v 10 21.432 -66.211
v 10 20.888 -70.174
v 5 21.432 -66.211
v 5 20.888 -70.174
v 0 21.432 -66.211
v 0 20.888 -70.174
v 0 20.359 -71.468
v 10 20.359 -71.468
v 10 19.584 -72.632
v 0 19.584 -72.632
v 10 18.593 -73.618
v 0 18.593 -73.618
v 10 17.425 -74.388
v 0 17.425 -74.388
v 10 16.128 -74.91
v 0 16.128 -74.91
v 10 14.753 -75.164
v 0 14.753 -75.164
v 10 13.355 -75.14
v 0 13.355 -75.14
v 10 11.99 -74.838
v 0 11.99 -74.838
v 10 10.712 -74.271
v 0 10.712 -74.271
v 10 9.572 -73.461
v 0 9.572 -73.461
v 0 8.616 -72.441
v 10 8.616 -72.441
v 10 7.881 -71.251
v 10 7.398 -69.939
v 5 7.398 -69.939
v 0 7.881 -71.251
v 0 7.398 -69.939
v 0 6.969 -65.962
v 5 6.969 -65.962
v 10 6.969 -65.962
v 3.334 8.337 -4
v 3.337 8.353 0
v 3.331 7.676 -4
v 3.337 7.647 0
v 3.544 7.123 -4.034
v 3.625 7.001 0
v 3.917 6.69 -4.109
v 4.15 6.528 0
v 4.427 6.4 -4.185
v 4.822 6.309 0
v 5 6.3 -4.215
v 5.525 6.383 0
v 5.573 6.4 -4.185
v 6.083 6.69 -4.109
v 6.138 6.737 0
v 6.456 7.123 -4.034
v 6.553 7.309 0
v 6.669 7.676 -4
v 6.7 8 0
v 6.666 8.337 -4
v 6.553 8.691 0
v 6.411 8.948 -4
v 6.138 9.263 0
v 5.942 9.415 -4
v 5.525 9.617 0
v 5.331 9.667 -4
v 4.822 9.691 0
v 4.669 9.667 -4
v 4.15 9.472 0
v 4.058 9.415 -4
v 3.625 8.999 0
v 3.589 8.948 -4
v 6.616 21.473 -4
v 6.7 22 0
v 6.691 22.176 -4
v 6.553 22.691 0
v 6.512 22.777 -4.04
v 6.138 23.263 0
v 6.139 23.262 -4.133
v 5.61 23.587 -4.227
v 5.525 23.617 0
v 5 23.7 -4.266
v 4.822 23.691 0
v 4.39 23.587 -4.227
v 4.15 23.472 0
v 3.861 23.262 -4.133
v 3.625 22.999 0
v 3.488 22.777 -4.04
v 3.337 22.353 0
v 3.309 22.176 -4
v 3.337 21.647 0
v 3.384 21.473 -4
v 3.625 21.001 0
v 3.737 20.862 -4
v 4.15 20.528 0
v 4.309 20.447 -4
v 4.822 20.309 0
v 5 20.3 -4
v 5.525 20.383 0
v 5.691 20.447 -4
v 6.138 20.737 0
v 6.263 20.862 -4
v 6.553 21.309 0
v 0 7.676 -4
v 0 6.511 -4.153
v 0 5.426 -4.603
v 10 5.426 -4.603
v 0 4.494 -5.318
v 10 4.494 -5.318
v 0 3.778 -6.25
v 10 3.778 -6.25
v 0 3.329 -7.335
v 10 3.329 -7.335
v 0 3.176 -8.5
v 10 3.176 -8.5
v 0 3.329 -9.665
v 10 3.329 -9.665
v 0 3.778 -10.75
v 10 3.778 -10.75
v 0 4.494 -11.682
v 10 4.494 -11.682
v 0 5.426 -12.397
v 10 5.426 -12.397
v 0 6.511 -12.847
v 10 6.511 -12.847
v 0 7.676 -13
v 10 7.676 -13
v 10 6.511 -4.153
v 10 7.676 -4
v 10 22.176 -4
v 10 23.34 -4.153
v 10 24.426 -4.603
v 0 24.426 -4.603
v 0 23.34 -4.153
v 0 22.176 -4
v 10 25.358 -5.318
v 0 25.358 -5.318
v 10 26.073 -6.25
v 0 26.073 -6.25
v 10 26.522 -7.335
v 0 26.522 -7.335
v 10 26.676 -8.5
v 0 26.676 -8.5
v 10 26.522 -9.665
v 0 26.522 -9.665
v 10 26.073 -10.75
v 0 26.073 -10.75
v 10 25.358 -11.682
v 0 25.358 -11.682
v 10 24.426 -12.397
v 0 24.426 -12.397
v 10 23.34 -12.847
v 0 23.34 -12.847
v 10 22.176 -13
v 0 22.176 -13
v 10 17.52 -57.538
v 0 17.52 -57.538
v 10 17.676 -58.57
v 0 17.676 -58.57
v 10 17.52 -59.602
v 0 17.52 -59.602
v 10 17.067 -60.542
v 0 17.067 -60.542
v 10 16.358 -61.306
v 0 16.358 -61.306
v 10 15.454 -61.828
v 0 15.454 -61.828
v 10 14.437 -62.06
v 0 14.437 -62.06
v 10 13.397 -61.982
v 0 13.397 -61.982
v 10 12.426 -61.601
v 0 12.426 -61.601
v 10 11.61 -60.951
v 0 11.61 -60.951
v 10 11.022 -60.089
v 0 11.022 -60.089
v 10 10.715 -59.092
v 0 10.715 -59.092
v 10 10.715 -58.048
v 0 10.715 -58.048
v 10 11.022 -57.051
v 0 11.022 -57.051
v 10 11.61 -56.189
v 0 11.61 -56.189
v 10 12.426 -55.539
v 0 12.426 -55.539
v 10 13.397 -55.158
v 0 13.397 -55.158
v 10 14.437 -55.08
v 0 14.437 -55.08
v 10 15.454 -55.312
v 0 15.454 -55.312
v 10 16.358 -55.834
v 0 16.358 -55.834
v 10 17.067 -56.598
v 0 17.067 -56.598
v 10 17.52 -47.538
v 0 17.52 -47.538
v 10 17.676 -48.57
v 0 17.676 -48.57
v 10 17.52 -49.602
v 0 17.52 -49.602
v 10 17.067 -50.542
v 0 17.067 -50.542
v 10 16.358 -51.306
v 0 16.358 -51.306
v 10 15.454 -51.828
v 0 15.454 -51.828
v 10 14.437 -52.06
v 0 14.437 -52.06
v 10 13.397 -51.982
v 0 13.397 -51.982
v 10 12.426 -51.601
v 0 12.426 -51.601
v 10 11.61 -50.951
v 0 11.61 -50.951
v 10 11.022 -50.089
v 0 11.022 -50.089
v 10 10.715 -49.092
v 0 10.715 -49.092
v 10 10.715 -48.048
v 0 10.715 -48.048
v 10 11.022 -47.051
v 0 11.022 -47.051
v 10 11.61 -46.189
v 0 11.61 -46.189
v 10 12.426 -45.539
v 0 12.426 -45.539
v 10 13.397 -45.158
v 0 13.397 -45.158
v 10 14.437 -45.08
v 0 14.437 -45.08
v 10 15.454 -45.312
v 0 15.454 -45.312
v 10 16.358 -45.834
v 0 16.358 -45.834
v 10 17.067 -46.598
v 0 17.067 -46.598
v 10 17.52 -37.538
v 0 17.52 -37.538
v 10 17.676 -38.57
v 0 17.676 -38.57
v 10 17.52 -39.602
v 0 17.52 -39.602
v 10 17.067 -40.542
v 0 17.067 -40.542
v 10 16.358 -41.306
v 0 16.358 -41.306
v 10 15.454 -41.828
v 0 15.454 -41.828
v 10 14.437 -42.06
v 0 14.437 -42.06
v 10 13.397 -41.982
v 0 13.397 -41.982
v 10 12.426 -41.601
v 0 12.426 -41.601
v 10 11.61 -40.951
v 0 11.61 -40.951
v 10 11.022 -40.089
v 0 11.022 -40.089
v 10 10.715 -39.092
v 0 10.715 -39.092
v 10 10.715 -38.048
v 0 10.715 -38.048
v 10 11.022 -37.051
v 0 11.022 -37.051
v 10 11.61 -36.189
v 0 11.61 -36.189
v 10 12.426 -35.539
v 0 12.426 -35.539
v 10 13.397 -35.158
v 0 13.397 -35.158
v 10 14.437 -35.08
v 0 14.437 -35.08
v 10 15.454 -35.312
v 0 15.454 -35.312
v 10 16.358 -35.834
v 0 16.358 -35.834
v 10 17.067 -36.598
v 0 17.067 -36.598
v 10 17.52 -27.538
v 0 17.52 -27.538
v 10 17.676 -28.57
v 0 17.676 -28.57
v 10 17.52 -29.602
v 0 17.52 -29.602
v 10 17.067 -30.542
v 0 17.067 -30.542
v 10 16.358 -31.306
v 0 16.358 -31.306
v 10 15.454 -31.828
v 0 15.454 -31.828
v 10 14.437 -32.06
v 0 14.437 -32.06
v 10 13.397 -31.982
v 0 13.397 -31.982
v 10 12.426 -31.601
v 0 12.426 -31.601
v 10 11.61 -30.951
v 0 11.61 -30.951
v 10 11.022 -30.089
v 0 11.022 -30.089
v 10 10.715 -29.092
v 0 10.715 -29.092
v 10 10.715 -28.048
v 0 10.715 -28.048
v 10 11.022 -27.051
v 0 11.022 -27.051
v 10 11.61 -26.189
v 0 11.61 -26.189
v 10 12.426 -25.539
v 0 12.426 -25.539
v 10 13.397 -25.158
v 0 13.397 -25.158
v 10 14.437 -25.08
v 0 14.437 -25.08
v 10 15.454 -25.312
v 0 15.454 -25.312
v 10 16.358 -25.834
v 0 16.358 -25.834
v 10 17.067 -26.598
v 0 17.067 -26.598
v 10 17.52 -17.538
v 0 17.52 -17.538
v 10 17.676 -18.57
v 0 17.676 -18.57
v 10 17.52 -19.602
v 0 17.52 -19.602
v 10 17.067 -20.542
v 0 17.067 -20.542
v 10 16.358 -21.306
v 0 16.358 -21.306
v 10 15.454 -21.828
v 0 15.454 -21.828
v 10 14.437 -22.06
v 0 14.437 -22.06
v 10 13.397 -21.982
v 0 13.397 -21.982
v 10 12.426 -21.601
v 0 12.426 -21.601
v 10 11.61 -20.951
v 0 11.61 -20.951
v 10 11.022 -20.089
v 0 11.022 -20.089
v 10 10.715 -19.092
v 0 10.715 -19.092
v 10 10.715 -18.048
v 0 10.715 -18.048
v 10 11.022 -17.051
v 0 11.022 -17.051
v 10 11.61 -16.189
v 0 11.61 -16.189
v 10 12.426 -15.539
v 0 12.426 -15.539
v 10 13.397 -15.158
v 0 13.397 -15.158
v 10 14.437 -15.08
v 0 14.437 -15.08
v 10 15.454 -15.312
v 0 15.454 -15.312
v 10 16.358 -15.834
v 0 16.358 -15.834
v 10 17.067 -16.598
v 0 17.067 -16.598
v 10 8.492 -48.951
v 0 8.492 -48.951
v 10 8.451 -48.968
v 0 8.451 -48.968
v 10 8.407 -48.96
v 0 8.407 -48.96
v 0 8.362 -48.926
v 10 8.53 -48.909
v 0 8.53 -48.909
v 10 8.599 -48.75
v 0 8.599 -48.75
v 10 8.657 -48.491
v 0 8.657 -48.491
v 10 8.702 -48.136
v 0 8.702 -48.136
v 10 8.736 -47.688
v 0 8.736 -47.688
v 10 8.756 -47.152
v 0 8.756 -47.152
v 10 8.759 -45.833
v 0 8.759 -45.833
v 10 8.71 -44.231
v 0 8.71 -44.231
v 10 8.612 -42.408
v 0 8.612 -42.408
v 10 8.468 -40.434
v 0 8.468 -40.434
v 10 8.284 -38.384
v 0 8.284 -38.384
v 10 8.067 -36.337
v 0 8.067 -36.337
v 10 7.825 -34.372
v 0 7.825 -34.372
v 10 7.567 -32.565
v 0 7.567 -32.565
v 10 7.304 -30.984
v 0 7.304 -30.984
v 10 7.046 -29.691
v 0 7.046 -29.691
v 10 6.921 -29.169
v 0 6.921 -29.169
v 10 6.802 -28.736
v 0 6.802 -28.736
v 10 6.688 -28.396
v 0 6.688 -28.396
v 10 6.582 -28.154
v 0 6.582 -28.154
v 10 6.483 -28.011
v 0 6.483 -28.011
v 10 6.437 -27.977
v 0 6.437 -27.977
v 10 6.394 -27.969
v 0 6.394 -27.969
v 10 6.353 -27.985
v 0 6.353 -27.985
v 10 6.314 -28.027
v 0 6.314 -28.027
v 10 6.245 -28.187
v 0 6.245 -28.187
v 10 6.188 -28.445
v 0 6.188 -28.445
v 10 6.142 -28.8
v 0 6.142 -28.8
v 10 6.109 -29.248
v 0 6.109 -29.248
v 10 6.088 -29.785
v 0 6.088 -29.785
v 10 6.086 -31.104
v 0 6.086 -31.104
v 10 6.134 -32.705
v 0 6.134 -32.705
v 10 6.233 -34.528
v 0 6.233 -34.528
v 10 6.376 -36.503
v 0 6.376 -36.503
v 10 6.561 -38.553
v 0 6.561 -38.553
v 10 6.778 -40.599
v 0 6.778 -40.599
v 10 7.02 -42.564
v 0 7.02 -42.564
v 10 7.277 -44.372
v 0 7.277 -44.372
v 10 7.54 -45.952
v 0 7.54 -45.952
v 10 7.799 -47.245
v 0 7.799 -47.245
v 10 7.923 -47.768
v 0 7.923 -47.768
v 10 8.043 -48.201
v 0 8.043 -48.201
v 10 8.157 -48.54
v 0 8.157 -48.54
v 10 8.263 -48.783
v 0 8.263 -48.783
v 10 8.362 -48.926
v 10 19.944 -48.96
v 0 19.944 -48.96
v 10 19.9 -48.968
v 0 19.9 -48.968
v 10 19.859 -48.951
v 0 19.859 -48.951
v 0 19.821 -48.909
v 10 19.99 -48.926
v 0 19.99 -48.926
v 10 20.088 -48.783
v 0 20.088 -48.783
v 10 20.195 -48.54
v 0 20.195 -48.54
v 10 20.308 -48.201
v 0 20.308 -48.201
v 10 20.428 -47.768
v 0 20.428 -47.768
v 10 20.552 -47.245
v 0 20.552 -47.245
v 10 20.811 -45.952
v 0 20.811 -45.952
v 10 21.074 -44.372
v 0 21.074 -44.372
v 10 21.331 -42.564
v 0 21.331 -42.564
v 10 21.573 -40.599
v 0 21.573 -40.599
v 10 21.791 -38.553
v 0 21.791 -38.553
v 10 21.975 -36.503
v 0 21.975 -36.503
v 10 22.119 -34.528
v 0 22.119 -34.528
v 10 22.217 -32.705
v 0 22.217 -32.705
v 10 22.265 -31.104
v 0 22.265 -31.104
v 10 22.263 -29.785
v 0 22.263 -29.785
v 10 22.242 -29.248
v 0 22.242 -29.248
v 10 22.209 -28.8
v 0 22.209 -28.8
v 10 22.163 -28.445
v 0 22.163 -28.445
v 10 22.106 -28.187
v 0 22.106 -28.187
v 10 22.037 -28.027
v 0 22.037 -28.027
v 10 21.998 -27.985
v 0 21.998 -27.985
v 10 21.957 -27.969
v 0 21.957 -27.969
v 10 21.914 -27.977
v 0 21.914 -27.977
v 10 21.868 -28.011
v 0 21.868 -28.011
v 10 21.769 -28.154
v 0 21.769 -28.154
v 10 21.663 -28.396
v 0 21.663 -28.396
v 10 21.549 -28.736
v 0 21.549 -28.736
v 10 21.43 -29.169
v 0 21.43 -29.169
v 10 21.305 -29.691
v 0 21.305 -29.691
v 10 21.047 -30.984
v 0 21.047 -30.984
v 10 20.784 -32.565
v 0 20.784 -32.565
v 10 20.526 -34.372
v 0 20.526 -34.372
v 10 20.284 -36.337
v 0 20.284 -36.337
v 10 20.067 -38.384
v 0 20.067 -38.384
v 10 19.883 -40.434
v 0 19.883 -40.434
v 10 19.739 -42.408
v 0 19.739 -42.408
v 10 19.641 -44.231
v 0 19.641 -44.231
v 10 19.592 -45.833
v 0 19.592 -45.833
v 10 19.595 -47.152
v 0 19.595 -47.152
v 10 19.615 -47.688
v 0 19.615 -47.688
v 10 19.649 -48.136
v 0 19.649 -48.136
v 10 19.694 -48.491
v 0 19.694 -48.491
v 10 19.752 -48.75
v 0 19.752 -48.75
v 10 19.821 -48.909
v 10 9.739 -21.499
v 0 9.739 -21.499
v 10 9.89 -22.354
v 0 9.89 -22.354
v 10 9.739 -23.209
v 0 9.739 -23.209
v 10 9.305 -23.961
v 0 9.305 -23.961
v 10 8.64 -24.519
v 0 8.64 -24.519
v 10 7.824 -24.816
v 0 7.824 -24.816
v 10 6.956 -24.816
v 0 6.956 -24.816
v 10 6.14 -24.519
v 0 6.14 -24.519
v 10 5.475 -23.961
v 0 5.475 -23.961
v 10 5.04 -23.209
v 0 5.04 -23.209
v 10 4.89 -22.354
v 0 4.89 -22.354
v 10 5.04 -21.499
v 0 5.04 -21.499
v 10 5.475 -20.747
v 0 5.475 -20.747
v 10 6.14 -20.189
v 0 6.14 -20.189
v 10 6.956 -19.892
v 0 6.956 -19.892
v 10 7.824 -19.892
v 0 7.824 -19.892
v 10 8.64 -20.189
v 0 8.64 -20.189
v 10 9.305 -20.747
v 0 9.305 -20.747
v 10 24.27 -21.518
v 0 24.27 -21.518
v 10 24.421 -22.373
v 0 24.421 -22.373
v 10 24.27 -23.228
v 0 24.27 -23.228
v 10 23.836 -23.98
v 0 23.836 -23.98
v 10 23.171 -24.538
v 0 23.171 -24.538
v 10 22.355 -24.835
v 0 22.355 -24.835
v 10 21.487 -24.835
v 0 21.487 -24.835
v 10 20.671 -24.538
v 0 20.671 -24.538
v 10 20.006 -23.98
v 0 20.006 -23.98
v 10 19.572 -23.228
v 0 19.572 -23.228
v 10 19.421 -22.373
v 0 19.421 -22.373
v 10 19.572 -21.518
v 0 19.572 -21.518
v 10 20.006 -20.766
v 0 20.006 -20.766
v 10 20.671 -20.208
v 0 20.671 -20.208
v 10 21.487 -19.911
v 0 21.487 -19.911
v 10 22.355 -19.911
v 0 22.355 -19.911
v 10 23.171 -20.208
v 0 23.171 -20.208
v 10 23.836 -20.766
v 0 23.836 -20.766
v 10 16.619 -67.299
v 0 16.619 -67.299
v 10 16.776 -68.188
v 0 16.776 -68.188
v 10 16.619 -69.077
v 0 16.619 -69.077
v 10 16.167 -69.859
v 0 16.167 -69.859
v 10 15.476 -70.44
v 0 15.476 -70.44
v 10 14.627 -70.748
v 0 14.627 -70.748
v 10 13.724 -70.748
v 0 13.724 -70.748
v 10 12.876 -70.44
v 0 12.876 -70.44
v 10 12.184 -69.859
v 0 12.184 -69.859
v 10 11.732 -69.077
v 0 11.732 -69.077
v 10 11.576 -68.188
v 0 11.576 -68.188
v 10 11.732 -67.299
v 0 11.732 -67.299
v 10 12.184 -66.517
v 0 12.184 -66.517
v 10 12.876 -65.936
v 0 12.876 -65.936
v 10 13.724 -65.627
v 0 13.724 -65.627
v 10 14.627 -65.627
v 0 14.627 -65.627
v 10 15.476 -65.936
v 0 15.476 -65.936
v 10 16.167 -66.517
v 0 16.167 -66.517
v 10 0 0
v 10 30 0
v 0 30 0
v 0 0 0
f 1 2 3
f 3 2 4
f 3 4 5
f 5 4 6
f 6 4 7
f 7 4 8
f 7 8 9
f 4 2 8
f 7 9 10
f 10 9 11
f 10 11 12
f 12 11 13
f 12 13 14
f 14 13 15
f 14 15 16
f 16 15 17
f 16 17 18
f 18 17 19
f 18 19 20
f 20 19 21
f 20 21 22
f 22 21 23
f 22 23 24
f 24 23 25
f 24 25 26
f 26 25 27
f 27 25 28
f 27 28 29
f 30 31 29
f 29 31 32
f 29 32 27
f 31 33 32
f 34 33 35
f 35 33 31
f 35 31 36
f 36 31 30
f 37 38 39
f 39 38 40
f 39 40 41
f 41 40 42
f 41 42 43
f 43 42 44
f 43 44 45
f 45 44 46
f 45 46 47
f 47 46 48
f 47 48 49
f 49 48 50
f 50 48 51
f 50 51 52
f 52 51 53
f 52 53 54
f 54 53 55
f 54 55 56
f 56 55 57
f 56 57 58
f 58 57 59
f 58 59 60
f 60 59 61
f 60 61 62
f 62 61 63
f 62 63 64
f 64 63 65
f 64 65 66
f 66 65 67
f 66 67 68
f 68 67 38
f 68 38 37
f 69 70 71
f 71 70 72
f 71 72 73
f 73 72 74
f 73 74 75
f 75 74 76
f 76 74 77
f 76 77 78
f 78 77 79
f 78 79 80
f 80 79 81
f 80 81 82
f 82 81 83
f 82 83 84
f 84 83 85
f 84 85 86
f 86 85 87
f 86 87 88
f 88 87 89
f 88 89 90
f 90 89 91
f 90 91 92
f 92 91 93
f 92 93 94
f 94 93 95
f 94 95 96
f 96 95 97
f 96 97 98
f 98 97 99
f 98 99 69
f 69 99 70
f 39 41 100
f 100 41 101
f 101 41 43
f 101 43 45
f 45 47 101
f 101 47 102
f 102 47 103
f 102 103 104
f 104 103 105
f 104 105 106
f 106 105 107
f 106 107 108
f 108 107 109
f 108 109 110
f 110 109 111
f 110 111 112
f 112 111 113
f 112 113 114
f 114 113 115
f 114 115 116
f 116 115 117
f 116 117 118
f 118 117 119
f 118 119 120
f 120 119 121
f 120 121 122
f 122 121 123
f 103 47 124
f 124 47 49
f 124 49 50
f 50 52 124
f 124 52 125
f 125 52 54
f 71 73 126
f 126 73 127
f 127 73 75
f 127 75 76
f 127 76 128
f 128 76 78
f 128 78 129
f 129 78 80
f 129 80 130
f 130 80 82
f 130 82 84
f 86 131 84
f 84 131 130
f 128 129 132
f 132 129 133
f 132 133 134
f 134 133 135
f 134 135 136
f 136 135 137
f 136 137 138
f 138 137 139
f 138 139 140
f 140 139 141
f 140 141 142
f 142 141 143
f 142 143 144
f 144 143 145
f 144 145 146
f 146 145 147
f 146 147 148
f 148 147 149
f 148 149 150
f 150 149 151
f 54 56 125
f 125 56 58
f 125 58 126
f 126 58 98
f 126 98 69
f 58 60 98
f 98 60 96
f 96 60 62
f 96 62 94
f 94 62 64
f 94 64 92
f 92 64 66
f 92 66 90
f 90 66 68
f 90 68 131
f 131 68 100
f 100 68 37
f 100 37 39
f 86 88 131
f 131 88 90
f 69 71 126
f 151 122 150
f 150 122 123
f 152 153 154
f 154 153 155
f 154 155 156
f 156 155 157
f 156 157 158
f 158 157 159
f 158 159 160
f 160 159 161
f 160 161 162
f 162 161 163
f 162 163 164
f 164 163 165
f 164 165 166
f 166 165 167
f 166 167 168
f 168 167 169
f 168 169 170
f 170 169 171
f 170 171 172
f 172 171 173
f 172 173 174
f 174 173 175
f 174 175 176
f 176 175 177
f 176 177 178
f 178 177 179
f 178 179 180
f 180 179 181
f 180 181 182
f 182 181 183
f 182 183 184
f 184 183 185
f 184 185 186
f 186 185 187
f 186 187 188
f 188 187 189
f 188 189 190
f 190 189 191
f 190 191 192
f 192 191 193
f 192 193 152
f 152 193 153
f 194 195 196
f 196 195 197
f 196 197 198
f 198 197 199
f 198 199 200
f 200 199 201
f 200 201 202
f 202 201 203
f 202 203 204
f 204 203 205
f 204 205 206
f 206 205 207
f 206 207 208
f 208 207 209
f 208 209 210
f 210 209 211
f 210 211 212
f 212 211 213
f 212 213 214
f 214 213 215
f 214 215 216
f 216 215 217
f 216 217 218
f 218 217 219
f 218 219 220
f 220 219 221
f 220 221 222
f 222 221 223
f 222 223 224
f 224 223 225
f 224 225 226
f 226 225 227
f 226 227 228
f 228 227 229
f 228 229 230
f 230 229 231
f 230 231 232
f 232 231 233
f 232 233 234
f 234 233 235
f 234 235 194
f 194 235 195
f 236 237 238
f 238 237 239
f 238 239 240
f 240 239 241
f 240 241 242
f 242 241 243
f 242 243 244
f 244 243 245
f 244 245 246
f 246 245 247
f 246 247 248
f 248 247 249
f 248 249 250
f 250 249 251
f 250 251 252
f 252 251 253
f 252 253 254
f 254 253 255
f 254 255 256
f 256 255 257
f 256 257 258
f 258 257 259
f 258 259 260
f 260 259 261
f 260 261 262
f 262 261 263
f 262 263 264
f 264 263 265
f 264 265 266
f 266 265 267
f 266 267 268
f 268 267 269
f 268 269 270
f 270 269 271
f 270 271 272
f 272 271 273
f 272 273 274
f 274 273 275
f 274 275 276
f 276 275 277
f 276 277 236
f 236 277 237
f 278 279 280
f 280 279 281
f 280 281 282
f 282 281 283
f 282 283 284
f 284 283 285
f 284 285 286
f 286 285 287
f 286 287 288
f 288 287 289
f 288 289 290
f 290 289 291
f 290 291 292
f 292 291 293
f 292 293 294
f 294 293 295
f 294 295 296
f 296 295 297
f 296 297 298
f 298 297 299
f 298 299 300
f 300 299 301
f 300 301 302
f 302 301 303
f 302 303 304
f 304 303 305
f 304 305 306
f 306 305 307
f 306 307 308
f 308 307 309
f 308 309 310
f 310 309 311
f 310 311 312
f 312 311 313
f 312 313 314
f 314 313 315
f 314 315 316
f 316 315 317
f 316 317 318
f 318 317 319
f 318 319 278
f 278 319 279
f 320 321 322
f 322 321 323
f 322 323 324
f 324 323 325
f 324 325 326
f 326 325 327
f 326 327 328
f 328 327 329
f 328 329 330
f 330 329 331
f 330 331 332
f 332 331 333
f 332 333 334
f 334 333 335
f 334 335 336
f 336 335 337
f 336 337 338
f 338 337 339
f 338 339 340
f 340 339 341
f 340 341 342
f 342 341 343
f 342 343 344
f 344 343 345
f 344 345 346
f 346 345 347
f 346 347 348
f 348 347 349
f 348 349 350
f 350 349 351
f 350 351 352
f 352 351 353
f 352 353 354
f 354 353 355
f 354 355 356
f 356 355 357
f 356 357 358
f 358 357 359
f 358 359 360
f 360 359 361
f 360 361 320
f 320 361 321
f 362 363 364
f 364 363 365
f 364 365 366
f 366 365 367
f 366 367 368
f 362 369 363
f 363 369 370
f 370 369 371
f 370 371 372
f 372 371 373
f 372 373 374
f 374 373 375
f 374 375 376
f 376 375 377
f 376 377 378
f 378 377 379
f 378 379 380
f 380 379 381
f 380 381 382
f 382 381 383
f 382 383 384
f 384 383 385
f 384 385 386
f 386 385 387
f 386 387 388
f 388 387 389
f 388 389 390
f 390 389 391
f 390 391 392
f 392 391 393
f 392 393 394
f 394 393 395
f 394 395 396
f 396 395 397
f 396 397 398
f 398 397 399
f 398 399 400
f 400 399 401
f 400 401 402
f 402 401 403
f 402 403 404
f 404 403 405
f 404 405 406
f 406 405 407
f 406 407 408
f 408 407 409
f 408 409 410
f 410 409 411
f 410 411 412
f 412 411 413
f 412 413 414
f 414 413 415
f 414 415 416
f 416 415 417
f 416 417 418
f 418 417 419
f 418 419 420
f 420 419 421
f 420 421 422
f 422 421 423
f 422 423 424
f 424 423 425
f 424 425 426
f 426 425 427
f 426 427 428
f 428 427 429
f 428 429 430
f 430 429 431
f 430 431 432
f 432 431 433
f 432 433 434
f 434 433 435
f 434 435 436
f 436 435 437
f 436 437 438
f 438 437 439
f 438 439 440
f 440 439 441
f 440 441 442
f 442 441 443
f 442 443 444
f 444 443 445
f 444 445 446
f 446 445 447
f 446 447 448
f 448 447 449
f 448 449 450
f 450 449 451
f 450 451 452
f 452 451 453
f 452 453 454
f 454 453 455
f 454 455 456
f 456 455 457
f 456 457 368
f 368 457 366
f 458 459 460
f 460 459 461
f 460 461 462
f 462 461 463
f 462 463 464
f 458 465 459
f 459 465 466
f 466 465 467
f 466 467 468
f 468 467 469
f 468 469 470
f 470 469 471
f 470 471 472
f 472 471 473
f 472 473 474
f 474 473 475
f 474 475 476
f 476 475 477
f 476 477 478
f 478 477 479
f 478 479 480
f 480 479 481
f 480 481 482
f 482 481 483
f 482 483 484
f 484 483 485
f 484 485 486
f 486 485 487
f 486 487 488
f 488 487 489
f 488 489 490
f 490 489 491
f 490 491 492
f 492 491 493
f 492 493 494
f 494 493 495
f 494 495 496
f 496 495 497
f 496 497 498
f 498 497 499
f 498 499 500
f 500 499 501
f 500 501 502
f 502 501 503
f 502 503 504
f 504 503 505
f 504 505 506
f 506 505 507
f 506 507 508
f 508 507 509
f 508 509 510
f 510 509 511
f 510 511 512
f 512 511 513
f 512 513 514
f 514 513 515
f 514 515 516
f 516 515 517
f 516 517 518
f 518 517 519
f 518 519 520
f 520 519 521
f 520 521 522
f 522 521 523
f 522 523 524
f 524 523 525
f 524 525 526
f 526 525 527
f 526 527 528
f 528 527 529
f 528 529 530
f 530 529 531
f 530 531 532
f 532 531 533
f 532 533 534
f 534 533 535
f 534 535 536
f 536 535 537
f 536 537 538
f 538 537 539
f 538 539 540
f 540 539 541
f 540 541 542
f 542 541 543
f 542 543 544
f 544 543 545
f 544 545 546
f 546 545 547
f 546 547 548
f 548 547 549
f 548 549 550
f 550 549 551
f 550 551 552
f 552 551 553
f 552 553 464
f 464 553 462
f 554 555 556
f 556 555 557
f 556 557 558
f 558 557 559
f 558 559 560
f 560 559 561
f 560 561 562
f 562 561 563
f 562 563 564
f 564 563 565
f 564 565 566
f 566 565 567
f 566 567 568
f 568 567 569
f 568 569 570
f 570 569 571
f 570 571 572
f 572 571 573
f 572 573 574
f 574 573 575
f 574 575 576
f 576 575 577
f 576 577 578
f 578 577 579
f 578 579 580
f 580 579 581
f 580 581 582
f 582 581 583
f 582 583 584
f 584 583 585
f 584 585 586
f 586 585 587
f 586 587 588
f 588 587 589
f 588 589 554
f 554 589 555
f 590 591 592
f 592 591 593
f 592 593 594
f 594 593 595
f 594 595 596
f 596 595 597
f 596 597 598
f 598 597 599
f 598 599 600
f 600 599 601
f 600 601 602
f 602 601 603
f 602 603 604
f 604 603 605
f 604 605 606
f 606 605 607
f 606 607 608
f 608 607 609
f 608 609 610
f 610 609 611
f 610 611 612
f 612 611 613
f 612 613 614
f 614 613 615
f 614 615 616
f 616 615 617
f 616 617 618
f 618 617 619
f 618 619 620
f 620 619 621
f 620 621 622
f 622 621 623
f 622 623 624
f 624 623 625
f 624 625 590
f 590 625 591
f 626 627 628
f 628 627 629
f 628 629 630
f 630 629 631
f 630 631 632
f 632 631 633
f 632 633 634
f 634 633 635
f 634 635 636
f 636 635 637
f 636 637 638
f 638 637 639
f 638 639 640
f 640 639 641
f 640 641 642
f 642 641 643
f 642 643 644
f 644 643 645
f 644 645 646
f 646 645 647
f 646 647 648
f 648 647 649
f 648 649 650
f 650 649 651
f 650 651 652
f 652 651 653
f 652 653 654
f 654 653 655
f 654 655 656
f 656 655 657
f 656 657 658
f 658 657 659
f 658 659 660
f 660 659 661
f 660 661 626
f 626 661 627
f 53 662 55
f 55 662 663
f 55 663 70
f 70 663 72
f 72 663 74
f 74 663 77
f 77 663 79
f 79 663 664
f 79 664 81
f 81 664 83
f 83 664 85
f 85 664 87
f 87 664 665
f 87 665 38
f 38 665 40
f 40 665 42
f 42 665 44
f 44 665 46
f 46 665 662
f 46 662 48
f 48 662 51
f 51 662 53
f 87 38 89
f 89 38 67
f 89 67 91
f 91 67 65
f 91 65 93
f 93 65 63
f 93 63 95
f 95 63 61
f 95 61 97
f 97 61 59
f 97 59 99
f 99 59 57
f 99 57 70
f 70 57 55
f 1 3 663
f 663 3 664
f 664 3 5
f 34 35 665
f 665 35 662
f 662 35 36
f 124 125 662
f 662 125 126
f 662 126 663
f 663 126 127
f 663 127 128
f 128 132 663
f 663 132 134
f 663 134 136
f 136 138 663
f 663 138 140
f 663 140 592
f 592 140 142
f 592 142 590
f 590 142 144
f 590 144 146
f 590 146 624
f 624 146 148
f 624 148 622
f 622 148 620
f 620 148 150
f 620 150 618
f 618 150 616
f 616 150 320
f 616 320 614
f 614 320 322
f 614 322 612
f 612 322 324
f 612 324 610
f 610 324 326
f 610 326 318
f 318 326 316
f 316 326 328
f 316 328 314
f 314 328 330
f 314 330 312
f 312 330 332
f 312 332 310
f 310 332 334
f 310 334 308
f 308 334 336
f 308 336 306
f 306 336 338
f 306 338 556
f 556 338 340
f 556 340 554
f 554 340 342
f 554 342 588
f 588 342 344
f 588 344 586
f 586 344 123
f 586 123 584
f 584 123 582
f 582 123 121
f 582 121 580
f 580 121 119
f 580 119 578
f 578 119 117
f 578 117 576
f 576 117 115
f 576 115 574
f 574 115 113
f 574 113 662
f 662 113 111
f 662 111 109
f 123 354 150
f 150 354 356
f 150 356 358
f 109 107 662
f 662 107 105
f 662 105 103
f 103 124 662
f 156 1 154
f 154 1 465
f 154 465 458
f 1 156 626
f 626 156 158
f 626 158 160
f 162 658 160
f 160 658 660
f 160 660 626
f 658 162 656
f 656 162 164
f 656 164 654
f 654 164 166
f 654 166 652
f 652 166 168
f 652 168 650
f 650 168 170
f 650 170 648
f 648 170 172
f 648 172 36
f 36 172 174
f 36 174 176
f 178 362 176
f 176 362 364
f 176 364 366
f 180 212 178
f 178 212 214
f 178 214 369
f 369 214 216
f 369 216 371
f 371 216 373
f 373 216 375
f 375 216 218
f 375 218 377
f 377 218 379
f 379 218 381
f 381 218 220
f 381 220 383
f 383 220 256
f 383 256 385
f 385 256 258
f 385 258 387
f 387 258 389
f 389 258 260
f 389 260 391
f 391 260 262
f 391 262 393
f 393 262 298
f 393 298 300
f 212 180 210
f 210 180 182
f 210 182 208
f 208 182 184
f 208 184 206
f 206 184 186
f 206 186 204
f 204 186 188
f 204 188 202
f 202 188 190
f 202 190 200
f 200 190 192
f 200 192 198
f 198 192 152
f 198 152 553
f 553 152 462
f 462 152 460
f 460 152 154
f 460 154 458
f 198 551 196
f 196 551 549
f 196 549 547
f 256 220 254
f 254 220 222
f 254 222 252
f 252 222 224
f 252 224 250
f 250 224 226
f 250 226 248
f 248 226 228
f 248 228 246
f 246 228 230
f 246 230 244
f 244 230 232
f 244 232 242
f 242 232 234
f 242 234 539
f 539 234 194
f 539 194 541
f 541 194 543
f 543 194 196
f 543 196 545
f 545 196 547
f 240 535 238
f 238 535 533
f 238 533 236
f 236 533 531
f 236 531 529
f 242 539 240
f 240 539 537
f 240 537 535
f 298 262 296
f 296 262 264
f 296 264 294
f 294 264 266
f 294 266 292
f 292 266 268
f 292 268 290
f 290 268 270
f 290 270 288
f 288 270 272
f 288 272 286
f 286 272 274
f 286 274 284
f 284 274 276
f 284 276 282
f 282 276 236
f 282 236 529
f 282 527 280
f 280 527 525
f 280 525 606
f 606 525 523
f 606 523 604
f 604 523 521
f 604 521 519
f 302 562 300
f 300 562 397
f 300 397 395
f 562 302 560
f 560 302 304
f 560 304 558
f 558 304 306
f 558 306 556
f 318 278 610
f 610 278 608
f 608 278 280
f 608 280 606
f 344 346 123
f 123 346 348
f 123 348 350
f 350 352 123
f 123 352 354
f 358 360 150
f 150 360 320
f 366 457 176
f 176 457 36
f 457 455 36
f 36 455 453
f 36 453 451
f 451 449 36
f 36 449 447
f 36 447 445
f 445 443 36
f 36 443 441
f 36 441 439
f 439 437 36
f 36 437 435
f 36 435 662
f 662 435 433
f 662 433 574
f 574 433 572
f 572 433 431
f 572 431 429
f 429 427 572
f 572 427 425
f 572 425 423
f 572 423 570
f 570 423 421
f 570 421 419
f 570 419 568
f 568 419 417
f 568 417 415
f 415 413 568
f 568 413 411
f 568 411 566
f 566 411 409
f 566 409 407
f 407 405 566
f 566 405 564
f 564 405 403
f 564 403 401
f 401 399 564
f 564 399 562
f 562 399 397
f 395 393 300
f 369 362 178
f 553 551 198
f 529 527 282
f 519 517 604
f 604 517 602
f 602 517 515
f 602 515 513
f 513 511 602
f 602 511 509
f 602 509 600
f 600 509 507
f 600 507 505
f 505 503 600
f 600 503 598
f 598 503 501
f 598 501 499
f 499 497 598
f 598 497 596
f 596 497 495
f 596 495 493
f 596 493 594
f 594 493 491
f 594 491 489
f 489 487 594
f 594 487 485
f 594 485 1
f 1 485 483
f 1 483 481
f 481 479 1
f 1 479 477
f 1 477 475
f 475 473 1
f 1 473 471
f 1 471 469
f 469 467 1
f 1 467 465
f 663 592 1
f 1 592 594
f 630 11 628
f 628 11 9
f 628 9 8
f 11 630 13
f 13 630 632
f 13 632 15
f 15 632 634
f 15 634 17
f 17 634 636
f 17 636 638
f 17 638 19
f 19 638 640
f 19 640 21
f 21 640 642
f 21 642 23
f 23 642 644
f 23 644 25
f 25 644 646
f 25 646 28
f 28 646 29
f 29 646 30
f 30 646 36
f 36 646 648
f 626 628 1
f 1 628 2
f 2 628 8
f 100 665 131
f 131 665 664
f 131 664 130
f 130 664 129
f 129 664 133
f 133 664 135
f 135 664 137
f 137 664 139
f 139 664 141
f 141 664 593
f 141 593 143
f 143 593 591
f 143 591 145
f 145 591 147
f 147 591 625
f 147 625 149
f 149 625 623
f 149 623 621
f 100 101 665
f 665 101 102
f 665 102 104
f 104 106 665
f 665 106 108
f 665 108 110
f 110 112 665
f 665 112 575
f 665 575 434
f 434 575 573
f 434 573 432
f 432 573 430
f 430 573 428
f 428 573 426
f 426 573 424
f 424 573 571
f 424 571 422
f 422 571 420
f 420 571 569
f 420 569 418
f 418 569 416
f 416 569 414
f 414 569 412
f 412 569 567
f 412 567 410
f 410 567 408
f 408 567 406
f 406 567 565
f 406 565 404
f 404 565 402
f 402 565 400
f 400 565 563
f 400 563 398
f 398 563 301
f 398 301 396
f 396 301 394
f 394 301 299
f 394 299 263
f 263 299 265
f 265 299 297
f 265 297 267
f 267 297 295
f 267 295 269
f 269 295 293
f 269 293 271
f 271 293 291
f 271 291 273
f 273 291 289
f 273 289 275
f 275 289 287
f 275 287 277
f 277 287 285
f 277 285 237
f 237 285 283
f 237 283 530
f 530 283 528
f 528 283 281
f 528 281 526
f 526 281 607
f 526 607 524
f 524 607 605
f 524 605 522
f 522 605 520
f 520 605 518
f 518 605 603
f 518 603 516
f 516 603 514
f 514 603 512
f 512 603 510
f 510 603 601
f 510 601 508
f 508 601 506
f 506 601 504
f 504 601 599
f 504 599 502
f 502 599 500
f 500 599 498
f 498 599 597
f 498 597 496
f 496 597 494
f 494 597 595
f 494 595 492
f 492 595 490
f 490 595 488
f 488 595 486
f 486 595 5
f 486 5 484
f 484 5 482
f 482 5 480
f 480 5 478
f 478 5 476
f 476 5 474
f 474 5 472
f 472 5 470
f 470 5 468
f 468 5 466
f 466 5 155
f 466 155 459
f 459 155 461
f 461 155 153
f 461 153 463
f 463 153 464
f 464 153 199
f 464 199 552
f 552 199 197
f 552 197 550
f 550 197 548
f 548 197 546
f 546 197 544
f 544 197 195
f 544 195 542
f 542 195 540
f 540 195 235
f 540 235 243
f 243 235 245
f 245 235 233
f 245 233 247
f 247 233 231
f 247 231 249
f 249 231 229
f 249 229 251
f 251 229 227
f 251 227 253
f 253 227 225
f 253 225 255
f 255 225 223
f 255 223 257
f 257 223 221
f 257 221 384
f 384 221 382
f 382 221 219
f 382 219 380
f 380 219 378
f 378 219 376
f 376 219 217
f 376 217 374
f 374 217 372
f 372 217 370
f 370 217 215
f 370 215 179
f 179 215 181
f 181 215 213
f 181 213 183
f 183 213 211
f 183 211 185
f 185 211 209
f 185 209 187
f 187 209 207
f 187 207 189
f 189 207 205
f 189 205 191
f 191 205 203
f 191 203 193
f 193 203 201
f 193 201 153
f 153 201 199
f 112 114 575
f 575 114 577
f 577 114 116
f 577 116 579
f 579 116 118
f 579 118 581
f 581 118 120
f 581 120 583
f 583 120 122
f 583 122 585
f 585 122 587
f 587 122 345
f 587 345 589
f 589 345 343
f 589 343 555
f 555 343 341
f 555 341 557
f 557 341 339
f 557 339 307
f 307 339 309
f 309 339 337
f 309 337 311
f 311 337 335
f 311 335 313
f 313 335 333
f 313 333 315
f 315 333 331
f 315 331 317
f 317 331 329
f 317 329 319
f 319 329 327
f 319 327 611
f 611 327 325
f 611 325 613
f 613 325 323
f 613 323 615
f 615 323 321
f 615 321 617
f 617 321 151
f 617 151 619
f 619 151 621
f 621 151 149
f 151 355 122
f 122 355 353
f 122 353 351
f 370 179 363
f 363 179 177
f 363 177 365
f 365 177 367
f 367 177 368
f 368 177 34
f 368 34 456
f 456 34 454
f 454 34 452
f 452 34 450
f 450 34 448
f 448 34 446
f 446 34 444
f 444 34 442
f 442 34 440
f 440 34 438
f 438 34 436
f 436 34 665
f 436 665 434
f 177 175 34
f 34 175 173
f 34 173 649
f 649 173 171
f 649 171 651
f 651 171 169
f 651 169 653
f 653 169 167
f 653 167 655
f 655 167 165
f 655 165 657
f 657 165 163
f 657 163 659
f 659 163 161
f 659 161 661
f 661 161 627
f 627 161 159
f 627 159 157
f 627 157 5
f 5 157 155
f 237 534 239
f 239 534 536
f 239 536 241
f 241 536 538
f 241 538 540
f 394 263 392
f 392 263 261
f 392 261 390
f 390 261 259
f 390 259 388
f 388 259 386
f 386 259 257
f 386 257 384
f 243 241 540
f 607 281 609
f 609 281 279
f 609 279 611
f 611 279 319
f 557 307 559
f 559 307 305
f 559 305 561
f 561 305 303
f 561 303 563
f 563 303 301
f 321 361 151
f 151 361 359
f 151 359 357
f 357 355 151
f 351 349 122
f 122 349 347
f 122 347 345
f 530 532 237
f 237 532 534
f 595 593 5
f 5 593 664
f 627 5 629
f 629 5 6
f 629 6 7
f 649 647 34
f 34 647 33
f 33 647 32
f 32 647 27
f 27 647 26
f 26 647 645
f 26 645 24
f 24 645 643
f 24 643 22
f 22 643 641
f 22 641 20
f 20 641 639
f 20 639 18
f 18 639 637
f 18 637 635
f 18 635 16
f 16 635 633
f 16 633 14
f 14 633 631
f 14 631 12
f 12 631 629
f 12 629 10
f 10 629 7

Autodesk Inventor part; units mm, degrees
ref_plane "YZ Plane" through (0, 0, 0) normal (1, 0, 0) x (0, 1, 0)
ref_plane "XZ Plane" through (0, 0, 0) normal (0, 1, 0) x (-1, 0, 0)
ref_plane "XY Plane" through (0, 0, 0) normal (0, 0, 1) x (1, 0, 0)
sketch "Skizze1" plane through (0, 0, 0) normal (1, 0, 0) x (0, 1, 0)
  line L0 (0, 0) -> (30, 0)
  line L1 (14.175552, 0) -> (14.175552, -68.187879) construction
  circle A0 centre (14.175552, -68.187879) radius 2.6
  circle A1 centre (14.175552, -68.187879) radius 7
  line L2 (0, 0) -> (7.179577, -67.95054)
  circle A2 centre (14.175552, -18.569993) radius 3.5
  arc A3 (7.675552, -4) -> (7.675552, -13) centre (7.675552, -8.5) ccw
  circle A4 centre (14.175552, -28.569993) radius 3.5
  circle A5 centre (14.175552, -38.569993) radius 3.5
  circle A6 centre (14.175552, -48.569993) radius 3.5
  circle A7 centre (14.175552, -58.569993) radius 3.5
  circle A8 centre (21.920836, -22.373144) radius 2.5
  circle A9 centre (7.389695, -22.35367) radius 2.5
  line L3 (7.675552, -4) -> (14.175552, -4)
  line L4 (7.675552, -13) -> (14.175552, -13)
  ellipse E0 centre (20.928749, -38.468301) end of major axis (19.90015, -48.968019) minor radius 0.865905
  ellipse E1 centre (7.422355, -38.468301) end of major axis (8.450954, -48.968019) minor radius 0.865905
  line L5 (21.175549, -68.194766) -> (30, 0)
  arc A10 (22.175552, -13) -> (22.175552, -4) centre (22.175552, -8.5) ccw
  line L6 (14.175552, -4) -> (22.175552, -4)
  line L7 (14.175552, -13) -> (22.175552, -13)
  point P0 (11.380257, -37.526628)
  point P1 (20.96203, -66.472155)
  dimension "d0" = 30
  dimension "d32" = 70
  dimension "d34" = 5.2
  dimension "d35" = 14
  dimension "d36" = 7
  dimension "d42" = 9
  dimension "d43" = 8.5
  dimension "d44" = 6.5
  dimension "d47" = 10
  dimension "d54" = 5
  dimension "d59" = 5
  dimension "d60" = 5
  dimension "d67" = 9
  dimension "d68" = 8
sketch "Skizze1 outline for Extrusion1" plane through (0, 0, 0) normal (1, 0, 0) x (0, 1, 0)
  circle A0 centre (14.175552, -58.569993) radius 3.5
  arc A1 (7.179577, -67.95054) -> (21.175549, -68.194766) centre (14.175552, -68.187879) ccw
  line L0 (21.175549, -68.194766) -> (30, 0)
  line L1 (30, 0) -> (0, 0)
  line L2 (0, 0) -> (7.179577, -67.95054)
  circle A2 centre (14.175552, -68.187879) radius 2.6
  arc A3 (22.175552, -13) -> (22.175552, -4) centre (22.175552, -8.5) ccw
  line L3 (22.175552, -13) -> (7.675552, -13)
  arc A4 (7.675552, -4) -> (7.675552, -13) centre (7.675552, -8.5) ccw
  line L4 (7.675552, -4) -> (22.175552, -4)
  circle A5 centre (14.175552, -48.569993) radius 3.5
  spline S0 degree 2 poles (8.450954, -48.968019) (9.9436, -48.821792) (7.654379, -33.14533) (5.365158, -17.468867) (6.161733, -33.291556) (6.958308, -49.114245) (8.450954, -48.968019) knots 0 0 0 0.33333333 0.33333333 0.66666667 0.66666667 1 1 1 weights 1 0.5 1 0.5 1 0.5 1
  circle A6 centre (14.175552, -38.569993) radius 3.5
  circle A7 centre (14.175552, -28.569993) radius 3.5
  spline S1 degree 2 poles (19.90015, -48.968019) (21.392796, -49.114245) (22.189371, -33.291556) (22.985946, -17.468867) (20.696725, -33.14533) (18.407504, -48.821792) (19.90015, -48.968019) knots 0 0 0 0.33333333 0.33333333 0.66666667 0.66666667 1 1 1 weights 1 0.5 1 0.5 1 0.5 1
  circle A8 centre (7.389695, -22.35367) radius 2.5
  circle A9 centre (14.175552, -18.569993) radius 3.5
  circle A10 centre (21.920836, -22.373144) radius 2.5
extrude "Extrusion1" add sketch "Skizze1 outline for Extrusion1" along normal blind 10
sketch "Skizze3" plane through (0, 0, 0) normal (0, 0, 1) x (1, 0, 0)
  circle A0 centre (5, 8) radius 1.7
  line L0 (0, 0) -> (10, 0) projected
  circle A1 centre (5, 22) radius 1.7
  line L1 (0, 30) -> (10, 30) projected
  line L2 (10, 30) -> (10, 0) projected
  dimension "d24" = 3.4
  dimension "d25" = 8
  dimension "d26" = 3.4
  dimension "d27" = 8
  dimension "d28" = 5
sketch "Skizze3 outline for Extrusion2" plane through (0, 0, 0) normal (0, 0, 1) x (1, 0, 0)
  circle A0 centre (5, 8) radius 1.7
  circle A1 centre (5, 22) radius 1.7
extrude "Extrusion2" cut sketch "Skizze3 outline for Extrusion2" against normal blind 11
chamfer "Fase1" distance 2 angle 45 1 edges at (5, 7.1796, -67.9505)
chamfer "Fase3" distance 2 angle 45 1 edges at (5, 21.1755, -68.1948)
properties part number "Radaufhängung" material "PC/ABS-Kunststoff"
